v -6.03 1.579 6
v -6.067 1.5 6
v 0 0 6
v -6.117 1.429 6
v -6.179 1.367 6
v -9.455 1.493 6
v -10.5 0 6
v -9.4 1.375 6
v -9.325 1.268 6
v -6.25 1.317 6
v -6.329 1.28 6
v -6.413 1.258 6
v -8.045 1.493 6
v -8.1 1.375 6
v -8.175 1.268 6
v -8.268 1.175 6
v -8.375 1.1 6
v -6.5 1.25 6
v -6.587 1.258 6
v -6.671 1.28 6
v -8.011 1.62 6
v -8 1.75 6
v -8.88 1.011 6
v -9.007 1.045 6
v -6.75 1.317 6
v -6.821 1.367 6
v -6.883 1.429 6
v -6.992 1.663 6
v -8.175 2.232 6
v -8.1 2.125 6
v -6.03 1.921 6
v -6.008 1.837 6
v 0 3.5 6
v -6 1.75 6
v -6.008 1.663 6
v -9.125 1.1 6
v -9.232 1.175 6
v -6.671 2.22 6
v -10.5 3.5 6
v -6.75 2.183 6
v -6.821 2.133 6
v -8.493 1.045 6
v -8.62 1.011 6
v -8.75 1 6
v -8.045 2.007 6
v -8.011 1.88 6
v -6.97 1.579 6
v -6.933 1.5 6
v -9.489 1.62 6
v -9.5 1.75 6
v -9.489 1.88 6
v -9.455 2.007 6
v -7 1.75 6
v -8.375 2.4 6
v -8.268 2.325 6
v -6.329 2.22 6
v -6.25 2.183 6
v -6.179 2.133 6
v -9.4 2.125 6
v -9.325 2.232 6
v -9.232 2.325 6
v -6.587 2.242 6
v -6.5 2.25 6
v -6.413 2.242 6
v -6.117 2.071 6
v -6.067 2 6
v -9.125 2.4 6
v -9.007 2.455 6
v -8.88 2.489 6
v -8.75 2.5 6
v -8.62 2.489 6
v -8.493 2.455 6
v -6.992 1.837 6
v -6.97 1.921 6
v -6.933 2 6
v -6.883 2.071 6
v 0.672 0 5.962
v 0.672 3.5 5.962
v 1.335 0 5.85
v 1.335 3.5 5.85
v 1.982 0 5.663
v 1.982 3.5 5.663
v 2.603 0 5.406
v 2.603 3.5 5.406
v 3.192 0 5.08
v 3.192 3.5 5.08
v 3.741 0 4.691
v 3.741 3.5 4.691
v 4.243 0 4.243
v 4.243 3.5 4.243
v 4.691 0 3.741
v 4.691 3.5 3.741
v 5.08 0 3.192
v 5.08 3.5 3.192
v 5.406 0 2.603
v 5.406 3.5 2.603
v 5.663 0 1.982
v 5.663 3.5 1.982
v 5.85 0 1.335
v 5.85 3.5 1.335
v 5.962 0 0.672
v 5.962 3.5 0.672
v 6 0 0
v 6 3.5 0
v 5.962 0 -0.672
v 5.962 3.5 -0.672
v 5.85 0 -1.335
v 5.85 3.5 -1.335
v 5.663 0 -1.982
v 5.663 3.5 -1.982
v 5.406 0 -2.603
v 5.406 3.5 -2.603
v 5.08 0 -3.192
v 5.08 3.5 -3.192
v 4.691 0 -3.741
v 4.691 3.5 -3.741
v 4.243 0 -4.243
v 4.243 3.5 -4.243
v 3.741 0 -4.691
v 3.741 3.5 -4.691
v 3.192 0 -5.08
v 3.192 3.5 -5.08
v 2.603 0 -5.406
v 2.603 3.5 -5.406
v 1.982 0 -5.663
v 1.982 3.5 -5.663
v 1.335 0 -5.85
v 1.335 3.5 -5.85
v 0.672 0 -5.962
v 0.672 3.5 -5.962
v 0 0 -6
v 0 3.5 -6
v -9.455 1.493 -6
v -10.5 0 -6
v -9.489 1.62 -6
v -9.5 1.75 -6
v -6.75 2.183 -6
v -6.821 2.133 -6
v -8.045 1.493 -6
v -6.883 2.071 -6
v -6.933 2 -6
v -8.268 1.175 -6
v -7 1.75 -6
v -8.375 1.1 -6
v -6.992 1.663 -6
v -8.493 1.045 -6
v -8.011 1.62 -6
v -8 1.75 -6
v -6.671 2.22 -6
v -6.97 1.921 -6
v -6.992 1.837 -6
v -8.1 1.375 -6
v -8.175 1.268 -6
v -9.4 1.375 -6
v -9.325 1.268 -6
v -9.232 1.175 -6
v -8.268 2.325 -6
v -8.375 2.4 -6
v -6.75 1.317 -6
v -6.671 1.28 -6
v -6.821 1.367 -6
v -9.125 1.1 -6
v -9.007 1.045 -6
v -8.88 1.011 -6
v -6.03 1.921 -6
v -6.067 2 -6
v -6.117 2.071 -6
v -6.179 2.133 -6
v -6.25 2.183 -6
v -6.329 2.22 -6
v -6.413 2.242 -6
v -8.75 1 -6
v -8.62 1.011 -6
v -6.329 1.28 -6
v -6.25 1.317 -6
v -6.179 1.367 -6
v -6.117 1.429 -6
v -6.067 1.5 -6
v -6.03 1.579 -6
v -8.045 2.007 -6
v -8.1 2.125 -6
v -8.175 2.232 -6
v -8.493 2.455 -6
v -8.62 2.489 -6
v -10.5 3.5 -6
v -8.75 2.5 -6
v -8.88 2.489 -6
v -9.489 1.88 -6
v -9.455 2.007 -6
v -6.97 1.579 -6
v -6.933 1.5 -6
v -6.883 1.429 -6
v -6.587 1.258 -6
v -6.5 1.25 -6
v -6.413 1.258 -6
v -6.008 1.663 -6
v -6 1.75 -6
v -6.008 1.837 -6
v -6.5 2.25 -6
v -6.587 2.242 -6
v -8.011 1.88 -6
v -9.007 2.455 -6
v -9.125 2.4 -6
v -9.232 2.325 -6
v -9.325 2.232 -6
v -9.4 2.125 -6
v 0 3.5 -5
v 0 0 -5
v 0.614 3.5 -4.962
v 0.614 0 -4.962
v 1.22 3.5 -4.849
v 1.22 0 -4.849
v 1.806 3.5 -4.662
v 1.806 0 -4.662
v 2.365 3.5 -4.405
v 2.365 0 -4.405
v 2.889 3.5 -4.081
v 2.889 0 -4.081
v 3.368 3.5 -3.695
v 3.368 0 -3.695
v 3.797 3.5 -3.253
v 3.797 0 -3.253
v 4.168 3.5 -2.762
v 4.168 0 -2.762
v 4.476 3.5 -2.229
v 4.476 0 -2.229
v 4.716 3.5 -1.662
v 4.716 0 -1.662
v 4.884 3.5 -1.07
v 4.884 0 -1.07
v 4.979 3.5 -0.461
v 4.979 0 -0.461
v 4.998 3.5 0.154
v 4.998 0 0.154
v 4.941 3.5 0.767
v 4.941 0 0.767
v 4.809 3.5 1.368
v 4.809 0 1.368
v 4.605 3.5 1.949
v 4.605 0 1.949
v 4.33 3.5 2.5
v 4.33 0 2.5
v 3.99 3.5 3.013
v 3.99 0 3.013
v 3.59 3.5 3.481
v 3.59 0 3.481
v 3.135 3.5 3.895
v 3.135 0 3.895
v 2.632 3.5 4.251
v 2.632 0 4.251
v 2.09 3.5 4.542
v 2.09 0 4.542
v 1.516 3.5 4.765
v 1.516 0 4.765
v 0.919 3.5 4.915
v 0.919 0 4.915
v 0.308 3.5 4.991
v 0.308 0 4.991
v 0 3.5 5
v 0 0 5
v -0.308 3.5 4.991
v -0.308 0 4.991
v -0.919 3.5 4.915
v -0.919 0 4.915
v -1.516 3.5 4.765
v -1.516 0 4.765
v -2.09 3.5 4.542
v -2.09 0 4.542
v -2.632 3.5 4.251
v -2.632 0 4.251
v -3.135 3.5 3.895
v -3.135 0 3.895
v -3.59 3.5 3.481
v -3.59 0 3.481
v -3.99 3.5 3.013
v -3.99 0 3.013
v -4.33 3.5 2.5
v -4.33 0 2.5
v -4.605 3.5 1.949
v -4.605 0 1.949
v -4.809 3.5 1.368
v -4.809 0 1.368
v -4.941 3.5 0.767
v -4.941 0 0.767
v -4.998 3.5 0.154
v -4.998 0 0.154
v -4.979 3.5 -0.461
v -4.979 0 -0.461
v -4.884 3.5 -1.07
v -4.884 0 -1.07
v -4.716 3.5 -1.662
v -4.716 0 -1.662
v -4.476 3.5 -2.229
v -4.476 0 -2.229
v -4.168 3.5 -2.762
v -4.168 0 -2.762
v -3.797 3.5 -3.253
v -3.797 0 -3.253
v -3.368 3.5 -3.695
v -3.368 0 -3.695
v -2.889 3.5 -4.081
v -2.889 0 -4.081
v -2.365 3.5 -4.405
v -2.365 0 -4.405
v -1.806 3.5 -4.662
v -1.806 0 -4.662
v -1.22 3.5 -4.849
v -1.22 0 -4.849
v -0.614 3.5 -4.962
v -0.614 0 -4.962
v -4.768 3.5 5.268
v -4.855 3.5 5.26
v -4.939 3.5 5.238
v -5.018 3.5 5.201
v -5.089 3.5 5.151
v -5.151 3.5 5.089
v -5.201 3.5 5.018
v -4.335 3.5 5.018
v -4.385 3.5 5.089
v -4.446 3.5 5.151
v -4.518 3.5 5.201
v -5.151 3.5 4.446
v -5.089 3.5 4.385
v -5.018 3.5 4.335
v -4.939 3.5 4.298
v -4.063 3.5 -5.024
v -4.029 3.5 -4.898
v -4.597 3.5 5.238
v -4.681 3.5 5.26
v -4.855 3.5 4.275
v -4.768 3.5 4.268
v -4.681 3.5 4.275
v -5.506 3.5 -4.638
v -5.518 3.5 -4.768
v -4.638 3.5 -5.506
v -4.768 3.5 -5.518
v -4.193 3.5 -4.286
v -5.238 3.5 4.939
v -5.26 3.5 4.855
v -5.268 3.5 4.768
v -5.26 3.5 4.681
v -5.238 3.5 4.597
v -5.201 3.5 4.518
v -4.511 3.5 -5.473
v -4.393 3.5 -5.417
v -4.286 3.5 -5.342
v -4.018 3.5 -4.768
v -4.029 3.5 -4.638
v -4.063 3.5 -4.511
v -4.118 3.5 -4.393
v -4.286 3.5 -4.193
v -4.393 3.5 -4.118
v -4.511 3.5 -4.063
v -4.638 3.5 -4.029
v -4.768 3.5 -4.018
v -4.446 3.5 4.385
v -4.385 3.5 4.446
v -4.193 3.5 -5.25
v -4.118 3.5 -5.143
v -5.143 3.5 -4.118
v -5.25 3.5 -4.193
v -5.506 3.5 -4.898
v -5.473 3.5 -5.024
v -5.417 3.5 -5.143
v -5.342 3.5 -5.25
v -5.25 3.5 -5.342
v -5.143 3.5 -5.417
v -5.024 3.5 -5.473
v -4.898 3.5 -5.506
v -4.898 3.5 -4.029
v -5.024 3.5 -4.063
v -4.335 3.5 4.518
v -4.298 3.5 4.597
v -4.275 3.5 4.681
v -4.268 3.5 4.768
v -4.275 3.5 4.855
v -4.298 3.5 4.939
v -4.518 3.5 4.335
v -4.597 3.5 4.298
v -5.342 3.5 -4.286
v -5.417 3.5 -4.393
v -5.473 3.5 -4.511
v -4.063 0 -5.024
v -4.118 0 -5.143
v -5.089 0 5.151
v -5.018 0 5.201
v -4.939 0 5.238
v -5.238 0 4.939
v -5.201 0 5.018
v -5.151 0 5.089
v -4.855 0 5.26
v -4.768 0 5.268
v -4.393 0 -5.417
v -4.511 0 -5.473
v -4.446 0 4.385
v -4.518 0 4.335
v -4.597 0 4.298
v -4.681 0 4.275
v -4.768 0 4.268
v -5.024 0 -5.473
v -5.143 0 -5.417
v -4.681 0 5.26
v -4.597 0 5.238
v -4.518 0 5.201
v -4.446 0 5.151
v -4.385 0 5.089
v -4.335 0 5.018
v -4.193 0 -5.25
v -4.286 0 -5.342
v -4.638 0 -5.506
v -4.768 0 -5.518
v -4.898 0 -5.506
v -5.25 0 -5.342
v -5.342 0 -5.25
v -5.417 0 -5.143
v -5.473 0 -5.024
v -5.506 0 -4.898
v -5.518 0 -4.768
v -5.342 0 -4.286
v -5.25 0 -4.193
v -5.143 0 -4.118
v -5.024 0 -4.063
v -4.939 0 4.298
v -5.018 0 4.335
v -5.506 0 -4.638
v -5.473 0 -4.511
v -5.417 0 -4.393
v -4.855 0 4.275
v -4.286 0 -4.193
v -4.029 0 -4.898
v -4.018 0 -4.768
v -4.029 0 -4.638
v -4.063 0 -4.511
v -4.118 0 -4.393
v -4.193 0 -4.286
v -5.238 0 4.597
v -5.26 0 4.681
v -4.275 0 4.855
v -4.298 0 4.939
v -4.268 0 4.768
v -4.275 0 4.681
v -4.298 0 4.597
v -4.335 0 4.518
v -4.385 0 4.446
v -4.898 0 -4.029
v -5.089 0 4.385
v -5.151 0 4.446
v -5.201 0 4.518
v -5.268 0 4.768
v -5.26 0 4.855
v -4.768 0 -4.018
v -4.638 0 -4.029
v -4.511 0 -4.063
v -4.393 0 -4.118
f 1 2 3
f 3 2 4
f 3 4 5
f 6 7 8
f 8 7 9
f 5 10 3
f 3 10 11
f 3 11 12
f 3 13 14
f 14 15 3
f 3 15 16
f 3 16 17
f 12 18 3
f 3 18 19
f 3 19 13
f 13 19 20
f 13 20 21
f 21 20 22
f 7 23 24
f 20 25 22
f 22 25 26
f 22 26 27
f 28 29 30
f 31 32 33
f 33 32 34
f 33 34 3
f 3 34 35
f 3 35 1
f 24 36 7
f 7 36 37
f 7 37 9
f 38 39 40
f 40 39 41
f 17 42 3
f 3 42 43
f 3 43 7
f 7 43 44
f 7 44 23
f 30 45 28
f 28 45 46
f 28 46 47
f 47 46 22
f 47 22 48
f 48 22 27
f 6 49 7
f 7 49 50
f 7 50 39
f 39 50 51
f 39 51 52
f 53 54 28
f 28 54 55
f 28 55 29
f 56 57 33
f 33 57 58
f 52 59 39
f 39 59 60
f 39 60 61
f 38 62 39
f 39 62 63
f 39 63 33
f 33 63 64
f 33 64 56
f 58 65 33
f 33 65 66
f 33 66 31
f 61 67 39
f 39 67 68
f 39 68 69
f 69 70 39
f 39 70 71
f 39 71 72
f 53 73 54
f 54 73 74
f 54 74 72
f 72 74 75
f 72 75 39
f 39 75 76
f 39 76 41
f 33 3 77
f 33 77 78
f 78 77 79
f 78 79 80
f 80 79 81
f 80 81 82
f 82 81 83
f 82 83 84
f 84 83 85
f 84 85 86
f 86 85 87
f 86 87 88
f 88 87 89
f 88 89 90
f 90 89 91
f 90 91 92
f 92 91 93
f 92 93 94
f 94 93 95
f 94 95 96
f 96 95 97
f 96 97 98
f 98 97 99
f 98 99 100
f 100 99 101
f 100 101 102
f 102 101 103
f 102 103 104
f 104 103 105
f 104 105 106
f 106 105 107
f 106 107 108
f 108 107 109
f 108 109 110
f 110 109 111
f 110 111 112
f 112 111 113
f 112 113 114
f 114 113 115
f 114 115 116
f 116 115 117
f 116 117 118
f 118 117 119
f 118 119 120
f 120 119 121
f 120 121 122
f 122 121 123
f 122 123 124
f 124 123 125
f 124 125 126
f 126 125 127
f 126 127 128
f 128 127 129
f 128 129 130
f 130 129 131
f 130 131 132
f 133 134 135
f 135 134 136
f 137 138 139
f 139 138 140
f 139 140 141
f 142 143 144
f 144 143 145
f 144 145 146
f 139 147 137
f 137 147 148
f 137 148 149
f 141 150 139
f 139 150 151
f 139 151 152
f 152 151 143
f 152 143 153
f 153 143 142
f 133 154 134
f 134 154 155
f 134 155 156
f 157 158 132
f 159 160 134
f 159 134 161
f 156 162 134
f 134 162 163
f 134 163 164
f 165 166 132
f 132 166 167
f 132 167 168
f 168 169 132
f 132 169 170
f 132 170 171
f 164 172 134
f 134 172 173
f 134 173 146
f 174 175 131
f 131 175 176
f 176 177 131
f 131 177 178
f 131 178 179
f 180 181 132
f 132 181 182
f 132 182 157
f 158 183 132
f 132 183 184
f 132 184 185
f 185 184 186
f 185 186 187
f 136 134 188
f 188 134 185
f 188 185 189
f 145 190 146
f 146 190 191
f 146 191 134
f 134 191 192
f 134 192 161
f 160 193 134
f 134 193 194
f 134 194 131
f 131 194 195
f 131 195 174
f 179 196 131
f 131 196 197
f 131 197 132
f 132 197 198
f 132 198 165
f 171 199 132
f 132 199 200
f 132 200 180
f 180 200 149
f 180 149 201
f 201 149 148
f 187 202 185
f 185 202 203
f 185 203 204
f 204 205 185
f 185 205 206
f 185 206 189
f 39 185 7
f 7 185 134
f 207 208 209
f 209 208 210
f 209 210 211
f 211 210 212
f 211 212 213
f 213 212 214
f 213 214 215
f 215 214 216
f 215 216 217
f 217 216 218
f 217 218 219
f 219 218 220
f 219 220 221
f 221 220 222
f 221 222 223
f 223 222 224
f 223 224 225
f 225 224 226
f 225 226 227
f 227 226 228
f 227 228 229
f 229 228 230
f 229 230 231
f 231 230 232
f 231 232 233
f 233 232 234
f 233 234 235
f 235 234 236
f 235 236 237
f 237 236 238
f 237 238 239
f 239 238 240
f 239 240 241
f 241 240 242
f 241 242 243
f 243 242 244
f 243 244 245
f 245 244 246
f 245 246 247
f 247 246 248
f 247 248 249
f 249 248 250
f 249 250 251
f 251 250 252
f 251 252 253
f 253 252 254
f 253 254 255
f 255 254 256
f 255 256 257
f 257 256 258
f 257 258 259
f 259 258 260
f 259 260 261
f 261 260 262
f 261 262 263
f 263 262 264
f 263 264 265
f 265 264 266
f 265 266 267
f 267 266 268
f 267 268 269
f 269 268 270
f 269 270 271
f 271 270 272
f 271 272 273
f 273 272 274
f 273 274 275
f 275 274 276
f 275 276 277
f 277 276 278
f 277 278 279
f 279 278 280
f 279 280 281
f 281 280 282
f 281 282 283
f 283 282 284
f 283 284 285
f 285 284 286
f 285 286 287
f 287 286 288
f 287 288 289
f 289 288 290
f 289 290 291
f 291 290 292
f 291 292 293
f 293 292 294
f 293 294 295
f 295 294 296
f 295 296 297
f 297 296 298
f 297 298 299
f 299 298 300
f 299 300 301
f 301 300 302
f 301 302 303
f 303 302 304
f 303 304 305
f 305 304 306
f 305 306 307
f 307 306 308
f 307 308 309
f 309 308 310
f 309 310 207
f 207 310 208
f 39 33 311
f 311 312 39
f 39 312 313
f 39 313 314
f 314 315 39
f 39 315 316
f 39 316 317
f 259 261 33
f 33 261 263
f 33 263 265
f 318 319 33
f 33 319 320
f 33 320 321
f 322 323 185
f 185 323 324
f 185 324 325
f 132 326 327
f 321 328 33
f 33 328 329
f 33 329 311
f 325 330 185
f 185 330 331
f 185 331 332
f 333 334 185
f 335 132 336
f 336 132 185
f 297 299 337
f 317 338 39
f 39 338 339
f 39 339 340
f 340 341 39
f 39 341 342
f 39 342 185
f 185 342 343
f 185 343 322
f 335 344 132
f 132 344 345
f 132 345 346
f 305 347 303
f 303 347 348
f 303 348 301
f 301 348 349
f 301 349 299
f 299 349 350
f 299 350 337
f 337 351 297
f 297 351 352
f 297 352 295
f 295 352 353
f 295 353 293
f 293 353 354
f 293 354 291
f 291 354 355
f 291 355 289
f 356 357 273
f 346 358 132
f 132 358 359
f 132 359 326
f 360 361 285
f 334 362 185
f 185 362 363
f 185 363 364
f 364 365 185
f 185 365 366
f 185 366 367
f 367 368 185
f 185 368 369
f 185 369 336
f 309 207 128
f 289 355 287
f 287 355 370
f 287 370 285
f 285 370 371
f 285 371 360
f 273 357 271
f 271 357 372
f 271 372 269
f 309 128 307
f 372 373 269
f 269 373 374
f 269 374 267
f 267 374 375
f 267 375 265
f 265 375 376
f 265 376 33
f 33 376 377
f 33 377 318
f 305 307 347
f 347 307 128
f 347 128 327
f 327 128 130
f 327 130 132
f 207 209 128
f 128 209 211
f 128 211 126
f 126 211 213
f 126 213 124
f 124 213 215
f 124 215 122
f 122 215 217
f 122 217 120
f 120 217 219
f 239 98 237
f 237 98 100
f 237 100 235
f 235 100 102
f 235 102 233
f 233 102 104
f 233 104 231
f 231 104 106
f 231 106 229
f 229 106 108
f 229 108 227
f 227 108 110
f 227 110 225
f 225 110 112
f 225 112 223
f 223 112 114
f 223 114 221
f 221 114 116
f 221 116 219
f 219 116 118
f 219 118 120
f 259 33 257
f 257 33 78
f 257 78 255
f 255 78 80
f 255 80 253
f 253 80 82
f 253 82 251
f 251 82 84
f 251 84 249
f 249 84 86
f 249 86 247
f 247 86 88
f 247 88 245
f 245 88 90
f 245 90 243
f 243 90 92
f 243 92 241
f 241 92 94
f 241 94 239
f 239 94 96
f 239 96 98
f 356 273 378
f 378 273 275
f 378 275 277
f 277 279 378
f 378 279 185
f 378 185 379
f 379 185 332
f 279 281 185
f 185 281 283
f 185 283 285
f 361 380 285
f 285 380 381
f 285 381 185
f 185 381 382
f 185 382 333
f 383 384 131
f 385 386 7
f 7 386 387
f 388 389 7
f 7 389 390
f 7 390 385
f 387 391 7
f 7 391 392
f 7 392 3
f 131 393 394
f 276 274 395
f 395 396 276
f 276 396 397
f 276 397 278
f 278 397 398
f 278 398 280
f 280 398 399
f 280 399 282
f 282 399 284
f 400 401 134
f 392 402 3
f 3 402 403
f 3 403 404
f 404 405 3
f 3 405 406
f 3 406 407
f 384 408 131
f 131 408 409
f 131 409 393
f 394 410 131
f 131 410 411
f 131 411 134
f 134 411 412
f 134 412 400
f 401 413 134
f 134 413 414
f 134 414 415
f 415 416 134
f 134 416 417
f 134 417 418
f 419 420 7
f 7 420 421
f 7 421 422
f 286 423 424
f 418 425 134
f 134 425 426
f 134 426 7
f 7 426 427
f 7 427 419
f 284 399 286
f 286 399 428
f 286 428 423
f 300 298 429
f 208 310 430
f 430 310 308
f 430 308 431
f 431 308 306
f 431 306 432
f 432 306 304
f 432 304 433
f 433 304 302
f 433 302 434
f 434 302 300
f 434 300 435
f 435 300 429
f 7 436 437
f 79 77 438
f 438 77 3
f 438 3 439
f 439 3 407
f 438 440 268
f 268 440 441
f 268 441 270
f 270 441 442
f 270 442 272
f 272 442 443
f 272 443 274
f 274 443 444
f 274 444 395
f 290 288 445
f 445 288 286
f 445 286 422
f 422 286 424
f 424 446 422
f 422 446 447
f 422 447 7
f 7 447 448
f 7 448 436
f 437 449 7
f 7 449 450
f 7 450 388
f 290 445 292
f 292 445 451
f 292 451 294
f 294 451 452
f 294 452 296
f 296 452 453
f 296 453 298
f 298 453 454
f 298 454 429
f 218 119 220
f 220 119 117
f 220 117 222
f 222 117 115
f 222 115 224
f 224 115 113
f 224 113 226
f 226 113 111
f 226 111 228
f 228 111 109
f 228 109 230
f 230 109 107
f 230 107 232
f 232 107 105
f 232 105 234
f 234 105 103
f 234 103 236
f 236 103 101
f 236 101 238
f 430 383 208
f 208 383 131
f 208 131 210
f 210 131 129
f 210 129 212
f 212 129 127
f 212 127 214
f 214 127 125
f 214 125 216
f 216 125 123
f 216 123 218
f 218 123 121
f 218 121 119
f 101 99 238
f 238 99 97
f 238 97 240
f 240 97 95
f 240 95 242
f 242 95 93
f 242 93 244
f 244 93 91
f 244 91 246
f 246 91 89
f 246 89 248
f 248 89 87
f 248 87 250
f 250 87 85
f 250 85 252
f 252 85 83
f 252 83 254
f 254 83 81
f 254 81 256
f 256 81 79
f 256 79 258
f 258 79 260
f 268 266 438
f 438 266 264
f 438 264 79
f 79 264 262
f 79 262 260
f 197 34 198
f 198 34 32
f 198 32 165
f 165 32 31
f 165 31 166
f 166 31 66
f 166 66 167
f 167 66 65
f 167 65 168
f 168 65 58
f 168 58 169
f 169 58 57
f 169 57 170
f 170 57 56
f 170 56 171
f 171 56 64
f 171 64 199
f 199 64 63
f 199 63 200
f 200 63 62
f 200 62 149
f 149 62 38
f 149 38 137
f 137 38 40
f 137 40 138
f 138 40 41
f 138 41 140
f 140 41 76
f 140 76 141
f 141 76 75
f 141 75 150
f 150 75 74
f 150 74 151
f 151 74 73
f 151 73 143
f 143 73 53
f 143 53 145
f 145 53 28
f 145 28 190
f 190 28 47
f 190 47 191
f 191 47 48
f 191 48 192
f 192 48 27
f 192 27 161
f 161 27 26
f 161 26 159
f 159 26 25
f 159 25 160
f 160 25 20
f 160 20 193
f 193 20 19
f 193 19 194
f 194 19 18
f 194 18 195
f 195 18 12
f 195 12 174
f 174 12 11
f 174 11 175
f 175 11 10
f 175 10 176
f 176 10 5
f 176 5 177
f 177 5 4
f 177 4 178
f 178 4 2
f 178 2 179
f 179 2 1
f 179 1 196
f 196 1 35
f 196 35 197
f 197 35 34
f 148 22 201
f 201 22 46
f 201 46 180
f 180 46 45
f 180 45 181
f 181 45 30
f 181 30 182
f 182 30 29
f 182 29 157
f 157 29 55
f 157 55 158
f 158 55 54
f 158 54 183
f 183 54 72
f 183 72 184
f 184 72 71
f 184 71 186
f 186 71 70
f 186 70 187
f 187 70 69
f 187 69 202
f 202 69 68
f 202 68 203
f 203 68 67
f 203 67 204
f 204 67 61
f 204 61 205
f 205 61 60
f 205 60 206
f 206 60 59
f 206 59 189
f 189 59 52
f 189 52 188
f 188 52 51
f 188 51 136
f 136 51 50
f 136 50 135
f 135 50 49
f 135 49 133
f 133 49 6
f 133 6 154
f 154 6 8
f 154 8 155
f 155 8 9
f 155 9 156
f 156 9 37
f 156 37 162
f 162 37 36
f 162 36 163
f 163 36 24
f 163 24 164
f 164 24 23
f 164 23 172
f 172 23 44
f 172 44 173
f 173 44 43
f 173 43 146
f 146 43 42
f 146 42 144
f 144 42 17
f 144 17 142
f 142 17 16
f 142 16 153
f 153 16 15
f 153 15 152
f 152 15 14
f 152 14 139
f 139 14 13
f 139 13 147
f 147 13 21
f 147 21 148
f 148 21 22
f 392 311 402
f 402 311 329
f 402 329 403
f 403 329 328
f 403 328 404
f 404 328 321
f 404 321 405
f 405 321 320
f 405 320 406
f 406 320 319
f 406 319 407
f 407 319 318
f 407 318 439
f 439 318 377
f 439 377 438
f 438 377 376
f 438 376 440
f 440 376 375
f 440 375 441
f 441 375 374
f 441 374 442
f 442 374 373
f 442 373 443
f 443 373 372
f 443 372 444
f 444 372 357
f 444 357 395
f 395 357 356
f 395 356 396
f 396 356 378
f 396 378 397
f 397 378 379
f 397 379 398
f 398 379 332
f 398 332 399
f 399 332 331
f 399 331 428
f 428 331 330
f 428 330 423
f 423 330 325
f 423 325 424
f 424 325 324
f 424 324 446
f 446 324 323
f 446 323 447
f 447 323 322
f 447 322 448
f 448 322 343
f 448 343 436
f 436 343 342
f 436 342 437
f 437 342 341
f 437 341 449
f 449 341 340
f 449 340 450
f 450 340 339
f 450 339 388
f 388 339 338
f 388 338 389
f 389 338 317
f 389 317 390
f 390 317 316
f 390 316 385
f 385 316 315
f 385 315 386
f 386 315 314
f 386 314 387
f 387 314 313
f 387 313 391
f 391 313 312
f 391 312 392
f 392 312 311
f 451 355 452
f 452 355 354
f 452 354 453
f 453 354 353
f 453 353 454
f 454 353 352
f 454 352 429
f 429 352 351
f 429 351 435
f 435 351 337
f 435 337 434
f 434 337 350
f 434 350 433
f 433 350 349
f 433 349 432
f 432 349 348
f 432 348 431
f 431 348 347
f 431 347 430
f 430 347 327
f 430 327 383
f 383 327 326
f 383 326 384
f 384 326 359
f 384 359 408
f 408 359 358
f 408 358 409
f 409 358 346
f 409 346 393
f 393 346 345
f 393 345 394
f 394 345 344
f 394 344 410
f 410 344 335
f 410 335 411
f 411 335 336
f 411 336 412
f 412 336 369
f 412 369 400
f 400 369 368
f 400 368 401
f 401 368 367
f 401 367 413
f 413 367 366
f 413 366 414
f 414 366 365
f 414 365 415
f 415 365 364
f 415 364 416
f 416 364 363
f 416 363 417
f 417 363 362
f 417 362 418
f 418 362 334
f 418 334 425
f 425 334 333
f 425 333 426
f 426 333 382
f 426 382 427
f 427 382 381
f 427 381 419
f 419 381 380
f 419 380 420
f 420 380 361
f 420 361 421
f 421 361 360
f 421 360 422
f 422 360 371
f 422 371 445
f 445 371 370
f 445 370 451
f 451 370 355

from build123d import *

# Parameters (mm, degrees)
SKETCH_1_W               = 1
SKETCH_1_H               = 12
SKETCH_1_W_2             = 1.5
SKETCH_1_R               = 6
SKETCH_1_R_2             = 5
EXTRUDE_1_DEPTH          = 3.5
CUT_EXTRUDE_1_DEPTH      = 17.324827717
CUT_EXTRUDE_1_DEPTH_BACK = 17.324827717
SKETCH_2_R               = 0.75
SKETCH_2_R_2             = 0.5
SKETCH_3_R               = 0.75
SKETCH_3_R_2             = 0.5
CUT_EXTRUDE_2_DEPTH      = 3.5


with BuildPart() as part:
    # Эскиз1 → Бобышка-Вытянуть1 (new body)
    # profile 1 of 7: a face of its own
    with BuildSketch(Plane(origin=(0, 0, 0), x_dir=(1, 0, 0), z_dir=(0, 1, 0))):
        with Locations((-10, 0)):
            Rectangle(SKETCH_1_W, SKETCH_1_H)
    # profile 2 of 7: a face of its own
    with BuildSketch(Plane(origin=(0, 0, 0), x_dir=(1, 0, 0), z_dir=(0, 1, 0))):
        with Locations((-8.75, 0)):
            Rectangle(SKETCH_1_W_2, SKETCH_1_H)
    # profile 3 of 7: a face of its own
    with BuildSketch(Plane(origin=(0, 0, 0), x_dir=(1, 0, 0), z_dir=(0, 1, 0))):
        with Locations((-7.5, 0)):
            Rectangle(SKETCH_1_W, SKETCH_1_H)
    # profile 4 of 7: a face of its own
    with BuildSketch(Plane(origin=(0, 0, 0), x_dir=(1, 0, 0), z_dir=(0, 1, 0))):
        with Locations((-6.5, 0)):
            Rectangle(SKETCH_1_W, SKETCH_1_H)
    # profile 5 of 7: a face of its own
    with BuildSketch(Plane(origin=(0, 0, 0), x_dir=(1, 0, 0), z_dir=(0, 1, 0))):
        with BuildLine():
            Line((-6, -5e-09), (-6, -6))
            Line((-6, -6), (0, -6))
            ThreePointArc((0, -6), (-4.242640685, -4.242640689), (-6, -5e-09))
        make_face()
    # profile 6 of 7: a face of its own
    with BuildSketch(Plane(origin=(0, 0, 0), x_dir=(1, 0, 0), z_dir=(0, 1, 0))):
        Circle(SKETCH_1_R)
        with Locations(Location((0, 0, 0), (0, 0, 270))):
            Circle(SKETCH_1_R_2, mode=Mode.SUBTRACT)
    # profile 7 of 7: a face of its own
    with BuildSketch(Plane(origin=(0, 0, 0), x_dir=(1, 0, 0), z_dir=(0, 1, 0))):
        with BuildLine():
            Line((-6, 6), (-6, -5e-09))
            ThreePointArc((-6, -5e-09), (-4.242640689, 4.242640685), (0, 6))
            Line((0, 6), (-6, 6))
        make_face()
    extrude(amount=EXTRUDE_1_DEPTH)

    # Эскиз2 → Вырез-Вытянуть1 (cut, two sides: drawn at the far end of the back side and taken through both)
    with BuildSketch(Plane.XY.offset(6).offset(-CUT_EXTRUDE_1_DEPTH_BACK)):
        with Locations((-8.75, 1.75)):
            Circle(SKETCH_2_R)
        with Locations((-6.5, 1.75)):
            Circle(SKETCH_2_R_2)
    extrude(amount=CUT_EXTRUDE_1_DEPTH + CUT_EXTRUDE_1_DEPTH_BACK, mode=Mode.SUBTRACT)

    # Эскиз3 → Вырез-Вытянуть2 (cut)
    with BuildSketch(Plane(origin=(0, 3.5, 0), x_dir=(1, 0, 0), z_dir=(0, 1, 0))):
        with Locations(Location((-4.767766953, 4.767766953, 0), (0, 0, 270))):
            Circle(SKETCH_3_R)
        with Locations(Location((-4.767766953, -4.767766953, 0), (0, 0, 90))):
            Circle(SKETCH_3_R_2)
    extrude(amount=-CUT_EXTRUDE_2_DEPTH, mode=Mode.SUBTRACT)


solid = part.part
